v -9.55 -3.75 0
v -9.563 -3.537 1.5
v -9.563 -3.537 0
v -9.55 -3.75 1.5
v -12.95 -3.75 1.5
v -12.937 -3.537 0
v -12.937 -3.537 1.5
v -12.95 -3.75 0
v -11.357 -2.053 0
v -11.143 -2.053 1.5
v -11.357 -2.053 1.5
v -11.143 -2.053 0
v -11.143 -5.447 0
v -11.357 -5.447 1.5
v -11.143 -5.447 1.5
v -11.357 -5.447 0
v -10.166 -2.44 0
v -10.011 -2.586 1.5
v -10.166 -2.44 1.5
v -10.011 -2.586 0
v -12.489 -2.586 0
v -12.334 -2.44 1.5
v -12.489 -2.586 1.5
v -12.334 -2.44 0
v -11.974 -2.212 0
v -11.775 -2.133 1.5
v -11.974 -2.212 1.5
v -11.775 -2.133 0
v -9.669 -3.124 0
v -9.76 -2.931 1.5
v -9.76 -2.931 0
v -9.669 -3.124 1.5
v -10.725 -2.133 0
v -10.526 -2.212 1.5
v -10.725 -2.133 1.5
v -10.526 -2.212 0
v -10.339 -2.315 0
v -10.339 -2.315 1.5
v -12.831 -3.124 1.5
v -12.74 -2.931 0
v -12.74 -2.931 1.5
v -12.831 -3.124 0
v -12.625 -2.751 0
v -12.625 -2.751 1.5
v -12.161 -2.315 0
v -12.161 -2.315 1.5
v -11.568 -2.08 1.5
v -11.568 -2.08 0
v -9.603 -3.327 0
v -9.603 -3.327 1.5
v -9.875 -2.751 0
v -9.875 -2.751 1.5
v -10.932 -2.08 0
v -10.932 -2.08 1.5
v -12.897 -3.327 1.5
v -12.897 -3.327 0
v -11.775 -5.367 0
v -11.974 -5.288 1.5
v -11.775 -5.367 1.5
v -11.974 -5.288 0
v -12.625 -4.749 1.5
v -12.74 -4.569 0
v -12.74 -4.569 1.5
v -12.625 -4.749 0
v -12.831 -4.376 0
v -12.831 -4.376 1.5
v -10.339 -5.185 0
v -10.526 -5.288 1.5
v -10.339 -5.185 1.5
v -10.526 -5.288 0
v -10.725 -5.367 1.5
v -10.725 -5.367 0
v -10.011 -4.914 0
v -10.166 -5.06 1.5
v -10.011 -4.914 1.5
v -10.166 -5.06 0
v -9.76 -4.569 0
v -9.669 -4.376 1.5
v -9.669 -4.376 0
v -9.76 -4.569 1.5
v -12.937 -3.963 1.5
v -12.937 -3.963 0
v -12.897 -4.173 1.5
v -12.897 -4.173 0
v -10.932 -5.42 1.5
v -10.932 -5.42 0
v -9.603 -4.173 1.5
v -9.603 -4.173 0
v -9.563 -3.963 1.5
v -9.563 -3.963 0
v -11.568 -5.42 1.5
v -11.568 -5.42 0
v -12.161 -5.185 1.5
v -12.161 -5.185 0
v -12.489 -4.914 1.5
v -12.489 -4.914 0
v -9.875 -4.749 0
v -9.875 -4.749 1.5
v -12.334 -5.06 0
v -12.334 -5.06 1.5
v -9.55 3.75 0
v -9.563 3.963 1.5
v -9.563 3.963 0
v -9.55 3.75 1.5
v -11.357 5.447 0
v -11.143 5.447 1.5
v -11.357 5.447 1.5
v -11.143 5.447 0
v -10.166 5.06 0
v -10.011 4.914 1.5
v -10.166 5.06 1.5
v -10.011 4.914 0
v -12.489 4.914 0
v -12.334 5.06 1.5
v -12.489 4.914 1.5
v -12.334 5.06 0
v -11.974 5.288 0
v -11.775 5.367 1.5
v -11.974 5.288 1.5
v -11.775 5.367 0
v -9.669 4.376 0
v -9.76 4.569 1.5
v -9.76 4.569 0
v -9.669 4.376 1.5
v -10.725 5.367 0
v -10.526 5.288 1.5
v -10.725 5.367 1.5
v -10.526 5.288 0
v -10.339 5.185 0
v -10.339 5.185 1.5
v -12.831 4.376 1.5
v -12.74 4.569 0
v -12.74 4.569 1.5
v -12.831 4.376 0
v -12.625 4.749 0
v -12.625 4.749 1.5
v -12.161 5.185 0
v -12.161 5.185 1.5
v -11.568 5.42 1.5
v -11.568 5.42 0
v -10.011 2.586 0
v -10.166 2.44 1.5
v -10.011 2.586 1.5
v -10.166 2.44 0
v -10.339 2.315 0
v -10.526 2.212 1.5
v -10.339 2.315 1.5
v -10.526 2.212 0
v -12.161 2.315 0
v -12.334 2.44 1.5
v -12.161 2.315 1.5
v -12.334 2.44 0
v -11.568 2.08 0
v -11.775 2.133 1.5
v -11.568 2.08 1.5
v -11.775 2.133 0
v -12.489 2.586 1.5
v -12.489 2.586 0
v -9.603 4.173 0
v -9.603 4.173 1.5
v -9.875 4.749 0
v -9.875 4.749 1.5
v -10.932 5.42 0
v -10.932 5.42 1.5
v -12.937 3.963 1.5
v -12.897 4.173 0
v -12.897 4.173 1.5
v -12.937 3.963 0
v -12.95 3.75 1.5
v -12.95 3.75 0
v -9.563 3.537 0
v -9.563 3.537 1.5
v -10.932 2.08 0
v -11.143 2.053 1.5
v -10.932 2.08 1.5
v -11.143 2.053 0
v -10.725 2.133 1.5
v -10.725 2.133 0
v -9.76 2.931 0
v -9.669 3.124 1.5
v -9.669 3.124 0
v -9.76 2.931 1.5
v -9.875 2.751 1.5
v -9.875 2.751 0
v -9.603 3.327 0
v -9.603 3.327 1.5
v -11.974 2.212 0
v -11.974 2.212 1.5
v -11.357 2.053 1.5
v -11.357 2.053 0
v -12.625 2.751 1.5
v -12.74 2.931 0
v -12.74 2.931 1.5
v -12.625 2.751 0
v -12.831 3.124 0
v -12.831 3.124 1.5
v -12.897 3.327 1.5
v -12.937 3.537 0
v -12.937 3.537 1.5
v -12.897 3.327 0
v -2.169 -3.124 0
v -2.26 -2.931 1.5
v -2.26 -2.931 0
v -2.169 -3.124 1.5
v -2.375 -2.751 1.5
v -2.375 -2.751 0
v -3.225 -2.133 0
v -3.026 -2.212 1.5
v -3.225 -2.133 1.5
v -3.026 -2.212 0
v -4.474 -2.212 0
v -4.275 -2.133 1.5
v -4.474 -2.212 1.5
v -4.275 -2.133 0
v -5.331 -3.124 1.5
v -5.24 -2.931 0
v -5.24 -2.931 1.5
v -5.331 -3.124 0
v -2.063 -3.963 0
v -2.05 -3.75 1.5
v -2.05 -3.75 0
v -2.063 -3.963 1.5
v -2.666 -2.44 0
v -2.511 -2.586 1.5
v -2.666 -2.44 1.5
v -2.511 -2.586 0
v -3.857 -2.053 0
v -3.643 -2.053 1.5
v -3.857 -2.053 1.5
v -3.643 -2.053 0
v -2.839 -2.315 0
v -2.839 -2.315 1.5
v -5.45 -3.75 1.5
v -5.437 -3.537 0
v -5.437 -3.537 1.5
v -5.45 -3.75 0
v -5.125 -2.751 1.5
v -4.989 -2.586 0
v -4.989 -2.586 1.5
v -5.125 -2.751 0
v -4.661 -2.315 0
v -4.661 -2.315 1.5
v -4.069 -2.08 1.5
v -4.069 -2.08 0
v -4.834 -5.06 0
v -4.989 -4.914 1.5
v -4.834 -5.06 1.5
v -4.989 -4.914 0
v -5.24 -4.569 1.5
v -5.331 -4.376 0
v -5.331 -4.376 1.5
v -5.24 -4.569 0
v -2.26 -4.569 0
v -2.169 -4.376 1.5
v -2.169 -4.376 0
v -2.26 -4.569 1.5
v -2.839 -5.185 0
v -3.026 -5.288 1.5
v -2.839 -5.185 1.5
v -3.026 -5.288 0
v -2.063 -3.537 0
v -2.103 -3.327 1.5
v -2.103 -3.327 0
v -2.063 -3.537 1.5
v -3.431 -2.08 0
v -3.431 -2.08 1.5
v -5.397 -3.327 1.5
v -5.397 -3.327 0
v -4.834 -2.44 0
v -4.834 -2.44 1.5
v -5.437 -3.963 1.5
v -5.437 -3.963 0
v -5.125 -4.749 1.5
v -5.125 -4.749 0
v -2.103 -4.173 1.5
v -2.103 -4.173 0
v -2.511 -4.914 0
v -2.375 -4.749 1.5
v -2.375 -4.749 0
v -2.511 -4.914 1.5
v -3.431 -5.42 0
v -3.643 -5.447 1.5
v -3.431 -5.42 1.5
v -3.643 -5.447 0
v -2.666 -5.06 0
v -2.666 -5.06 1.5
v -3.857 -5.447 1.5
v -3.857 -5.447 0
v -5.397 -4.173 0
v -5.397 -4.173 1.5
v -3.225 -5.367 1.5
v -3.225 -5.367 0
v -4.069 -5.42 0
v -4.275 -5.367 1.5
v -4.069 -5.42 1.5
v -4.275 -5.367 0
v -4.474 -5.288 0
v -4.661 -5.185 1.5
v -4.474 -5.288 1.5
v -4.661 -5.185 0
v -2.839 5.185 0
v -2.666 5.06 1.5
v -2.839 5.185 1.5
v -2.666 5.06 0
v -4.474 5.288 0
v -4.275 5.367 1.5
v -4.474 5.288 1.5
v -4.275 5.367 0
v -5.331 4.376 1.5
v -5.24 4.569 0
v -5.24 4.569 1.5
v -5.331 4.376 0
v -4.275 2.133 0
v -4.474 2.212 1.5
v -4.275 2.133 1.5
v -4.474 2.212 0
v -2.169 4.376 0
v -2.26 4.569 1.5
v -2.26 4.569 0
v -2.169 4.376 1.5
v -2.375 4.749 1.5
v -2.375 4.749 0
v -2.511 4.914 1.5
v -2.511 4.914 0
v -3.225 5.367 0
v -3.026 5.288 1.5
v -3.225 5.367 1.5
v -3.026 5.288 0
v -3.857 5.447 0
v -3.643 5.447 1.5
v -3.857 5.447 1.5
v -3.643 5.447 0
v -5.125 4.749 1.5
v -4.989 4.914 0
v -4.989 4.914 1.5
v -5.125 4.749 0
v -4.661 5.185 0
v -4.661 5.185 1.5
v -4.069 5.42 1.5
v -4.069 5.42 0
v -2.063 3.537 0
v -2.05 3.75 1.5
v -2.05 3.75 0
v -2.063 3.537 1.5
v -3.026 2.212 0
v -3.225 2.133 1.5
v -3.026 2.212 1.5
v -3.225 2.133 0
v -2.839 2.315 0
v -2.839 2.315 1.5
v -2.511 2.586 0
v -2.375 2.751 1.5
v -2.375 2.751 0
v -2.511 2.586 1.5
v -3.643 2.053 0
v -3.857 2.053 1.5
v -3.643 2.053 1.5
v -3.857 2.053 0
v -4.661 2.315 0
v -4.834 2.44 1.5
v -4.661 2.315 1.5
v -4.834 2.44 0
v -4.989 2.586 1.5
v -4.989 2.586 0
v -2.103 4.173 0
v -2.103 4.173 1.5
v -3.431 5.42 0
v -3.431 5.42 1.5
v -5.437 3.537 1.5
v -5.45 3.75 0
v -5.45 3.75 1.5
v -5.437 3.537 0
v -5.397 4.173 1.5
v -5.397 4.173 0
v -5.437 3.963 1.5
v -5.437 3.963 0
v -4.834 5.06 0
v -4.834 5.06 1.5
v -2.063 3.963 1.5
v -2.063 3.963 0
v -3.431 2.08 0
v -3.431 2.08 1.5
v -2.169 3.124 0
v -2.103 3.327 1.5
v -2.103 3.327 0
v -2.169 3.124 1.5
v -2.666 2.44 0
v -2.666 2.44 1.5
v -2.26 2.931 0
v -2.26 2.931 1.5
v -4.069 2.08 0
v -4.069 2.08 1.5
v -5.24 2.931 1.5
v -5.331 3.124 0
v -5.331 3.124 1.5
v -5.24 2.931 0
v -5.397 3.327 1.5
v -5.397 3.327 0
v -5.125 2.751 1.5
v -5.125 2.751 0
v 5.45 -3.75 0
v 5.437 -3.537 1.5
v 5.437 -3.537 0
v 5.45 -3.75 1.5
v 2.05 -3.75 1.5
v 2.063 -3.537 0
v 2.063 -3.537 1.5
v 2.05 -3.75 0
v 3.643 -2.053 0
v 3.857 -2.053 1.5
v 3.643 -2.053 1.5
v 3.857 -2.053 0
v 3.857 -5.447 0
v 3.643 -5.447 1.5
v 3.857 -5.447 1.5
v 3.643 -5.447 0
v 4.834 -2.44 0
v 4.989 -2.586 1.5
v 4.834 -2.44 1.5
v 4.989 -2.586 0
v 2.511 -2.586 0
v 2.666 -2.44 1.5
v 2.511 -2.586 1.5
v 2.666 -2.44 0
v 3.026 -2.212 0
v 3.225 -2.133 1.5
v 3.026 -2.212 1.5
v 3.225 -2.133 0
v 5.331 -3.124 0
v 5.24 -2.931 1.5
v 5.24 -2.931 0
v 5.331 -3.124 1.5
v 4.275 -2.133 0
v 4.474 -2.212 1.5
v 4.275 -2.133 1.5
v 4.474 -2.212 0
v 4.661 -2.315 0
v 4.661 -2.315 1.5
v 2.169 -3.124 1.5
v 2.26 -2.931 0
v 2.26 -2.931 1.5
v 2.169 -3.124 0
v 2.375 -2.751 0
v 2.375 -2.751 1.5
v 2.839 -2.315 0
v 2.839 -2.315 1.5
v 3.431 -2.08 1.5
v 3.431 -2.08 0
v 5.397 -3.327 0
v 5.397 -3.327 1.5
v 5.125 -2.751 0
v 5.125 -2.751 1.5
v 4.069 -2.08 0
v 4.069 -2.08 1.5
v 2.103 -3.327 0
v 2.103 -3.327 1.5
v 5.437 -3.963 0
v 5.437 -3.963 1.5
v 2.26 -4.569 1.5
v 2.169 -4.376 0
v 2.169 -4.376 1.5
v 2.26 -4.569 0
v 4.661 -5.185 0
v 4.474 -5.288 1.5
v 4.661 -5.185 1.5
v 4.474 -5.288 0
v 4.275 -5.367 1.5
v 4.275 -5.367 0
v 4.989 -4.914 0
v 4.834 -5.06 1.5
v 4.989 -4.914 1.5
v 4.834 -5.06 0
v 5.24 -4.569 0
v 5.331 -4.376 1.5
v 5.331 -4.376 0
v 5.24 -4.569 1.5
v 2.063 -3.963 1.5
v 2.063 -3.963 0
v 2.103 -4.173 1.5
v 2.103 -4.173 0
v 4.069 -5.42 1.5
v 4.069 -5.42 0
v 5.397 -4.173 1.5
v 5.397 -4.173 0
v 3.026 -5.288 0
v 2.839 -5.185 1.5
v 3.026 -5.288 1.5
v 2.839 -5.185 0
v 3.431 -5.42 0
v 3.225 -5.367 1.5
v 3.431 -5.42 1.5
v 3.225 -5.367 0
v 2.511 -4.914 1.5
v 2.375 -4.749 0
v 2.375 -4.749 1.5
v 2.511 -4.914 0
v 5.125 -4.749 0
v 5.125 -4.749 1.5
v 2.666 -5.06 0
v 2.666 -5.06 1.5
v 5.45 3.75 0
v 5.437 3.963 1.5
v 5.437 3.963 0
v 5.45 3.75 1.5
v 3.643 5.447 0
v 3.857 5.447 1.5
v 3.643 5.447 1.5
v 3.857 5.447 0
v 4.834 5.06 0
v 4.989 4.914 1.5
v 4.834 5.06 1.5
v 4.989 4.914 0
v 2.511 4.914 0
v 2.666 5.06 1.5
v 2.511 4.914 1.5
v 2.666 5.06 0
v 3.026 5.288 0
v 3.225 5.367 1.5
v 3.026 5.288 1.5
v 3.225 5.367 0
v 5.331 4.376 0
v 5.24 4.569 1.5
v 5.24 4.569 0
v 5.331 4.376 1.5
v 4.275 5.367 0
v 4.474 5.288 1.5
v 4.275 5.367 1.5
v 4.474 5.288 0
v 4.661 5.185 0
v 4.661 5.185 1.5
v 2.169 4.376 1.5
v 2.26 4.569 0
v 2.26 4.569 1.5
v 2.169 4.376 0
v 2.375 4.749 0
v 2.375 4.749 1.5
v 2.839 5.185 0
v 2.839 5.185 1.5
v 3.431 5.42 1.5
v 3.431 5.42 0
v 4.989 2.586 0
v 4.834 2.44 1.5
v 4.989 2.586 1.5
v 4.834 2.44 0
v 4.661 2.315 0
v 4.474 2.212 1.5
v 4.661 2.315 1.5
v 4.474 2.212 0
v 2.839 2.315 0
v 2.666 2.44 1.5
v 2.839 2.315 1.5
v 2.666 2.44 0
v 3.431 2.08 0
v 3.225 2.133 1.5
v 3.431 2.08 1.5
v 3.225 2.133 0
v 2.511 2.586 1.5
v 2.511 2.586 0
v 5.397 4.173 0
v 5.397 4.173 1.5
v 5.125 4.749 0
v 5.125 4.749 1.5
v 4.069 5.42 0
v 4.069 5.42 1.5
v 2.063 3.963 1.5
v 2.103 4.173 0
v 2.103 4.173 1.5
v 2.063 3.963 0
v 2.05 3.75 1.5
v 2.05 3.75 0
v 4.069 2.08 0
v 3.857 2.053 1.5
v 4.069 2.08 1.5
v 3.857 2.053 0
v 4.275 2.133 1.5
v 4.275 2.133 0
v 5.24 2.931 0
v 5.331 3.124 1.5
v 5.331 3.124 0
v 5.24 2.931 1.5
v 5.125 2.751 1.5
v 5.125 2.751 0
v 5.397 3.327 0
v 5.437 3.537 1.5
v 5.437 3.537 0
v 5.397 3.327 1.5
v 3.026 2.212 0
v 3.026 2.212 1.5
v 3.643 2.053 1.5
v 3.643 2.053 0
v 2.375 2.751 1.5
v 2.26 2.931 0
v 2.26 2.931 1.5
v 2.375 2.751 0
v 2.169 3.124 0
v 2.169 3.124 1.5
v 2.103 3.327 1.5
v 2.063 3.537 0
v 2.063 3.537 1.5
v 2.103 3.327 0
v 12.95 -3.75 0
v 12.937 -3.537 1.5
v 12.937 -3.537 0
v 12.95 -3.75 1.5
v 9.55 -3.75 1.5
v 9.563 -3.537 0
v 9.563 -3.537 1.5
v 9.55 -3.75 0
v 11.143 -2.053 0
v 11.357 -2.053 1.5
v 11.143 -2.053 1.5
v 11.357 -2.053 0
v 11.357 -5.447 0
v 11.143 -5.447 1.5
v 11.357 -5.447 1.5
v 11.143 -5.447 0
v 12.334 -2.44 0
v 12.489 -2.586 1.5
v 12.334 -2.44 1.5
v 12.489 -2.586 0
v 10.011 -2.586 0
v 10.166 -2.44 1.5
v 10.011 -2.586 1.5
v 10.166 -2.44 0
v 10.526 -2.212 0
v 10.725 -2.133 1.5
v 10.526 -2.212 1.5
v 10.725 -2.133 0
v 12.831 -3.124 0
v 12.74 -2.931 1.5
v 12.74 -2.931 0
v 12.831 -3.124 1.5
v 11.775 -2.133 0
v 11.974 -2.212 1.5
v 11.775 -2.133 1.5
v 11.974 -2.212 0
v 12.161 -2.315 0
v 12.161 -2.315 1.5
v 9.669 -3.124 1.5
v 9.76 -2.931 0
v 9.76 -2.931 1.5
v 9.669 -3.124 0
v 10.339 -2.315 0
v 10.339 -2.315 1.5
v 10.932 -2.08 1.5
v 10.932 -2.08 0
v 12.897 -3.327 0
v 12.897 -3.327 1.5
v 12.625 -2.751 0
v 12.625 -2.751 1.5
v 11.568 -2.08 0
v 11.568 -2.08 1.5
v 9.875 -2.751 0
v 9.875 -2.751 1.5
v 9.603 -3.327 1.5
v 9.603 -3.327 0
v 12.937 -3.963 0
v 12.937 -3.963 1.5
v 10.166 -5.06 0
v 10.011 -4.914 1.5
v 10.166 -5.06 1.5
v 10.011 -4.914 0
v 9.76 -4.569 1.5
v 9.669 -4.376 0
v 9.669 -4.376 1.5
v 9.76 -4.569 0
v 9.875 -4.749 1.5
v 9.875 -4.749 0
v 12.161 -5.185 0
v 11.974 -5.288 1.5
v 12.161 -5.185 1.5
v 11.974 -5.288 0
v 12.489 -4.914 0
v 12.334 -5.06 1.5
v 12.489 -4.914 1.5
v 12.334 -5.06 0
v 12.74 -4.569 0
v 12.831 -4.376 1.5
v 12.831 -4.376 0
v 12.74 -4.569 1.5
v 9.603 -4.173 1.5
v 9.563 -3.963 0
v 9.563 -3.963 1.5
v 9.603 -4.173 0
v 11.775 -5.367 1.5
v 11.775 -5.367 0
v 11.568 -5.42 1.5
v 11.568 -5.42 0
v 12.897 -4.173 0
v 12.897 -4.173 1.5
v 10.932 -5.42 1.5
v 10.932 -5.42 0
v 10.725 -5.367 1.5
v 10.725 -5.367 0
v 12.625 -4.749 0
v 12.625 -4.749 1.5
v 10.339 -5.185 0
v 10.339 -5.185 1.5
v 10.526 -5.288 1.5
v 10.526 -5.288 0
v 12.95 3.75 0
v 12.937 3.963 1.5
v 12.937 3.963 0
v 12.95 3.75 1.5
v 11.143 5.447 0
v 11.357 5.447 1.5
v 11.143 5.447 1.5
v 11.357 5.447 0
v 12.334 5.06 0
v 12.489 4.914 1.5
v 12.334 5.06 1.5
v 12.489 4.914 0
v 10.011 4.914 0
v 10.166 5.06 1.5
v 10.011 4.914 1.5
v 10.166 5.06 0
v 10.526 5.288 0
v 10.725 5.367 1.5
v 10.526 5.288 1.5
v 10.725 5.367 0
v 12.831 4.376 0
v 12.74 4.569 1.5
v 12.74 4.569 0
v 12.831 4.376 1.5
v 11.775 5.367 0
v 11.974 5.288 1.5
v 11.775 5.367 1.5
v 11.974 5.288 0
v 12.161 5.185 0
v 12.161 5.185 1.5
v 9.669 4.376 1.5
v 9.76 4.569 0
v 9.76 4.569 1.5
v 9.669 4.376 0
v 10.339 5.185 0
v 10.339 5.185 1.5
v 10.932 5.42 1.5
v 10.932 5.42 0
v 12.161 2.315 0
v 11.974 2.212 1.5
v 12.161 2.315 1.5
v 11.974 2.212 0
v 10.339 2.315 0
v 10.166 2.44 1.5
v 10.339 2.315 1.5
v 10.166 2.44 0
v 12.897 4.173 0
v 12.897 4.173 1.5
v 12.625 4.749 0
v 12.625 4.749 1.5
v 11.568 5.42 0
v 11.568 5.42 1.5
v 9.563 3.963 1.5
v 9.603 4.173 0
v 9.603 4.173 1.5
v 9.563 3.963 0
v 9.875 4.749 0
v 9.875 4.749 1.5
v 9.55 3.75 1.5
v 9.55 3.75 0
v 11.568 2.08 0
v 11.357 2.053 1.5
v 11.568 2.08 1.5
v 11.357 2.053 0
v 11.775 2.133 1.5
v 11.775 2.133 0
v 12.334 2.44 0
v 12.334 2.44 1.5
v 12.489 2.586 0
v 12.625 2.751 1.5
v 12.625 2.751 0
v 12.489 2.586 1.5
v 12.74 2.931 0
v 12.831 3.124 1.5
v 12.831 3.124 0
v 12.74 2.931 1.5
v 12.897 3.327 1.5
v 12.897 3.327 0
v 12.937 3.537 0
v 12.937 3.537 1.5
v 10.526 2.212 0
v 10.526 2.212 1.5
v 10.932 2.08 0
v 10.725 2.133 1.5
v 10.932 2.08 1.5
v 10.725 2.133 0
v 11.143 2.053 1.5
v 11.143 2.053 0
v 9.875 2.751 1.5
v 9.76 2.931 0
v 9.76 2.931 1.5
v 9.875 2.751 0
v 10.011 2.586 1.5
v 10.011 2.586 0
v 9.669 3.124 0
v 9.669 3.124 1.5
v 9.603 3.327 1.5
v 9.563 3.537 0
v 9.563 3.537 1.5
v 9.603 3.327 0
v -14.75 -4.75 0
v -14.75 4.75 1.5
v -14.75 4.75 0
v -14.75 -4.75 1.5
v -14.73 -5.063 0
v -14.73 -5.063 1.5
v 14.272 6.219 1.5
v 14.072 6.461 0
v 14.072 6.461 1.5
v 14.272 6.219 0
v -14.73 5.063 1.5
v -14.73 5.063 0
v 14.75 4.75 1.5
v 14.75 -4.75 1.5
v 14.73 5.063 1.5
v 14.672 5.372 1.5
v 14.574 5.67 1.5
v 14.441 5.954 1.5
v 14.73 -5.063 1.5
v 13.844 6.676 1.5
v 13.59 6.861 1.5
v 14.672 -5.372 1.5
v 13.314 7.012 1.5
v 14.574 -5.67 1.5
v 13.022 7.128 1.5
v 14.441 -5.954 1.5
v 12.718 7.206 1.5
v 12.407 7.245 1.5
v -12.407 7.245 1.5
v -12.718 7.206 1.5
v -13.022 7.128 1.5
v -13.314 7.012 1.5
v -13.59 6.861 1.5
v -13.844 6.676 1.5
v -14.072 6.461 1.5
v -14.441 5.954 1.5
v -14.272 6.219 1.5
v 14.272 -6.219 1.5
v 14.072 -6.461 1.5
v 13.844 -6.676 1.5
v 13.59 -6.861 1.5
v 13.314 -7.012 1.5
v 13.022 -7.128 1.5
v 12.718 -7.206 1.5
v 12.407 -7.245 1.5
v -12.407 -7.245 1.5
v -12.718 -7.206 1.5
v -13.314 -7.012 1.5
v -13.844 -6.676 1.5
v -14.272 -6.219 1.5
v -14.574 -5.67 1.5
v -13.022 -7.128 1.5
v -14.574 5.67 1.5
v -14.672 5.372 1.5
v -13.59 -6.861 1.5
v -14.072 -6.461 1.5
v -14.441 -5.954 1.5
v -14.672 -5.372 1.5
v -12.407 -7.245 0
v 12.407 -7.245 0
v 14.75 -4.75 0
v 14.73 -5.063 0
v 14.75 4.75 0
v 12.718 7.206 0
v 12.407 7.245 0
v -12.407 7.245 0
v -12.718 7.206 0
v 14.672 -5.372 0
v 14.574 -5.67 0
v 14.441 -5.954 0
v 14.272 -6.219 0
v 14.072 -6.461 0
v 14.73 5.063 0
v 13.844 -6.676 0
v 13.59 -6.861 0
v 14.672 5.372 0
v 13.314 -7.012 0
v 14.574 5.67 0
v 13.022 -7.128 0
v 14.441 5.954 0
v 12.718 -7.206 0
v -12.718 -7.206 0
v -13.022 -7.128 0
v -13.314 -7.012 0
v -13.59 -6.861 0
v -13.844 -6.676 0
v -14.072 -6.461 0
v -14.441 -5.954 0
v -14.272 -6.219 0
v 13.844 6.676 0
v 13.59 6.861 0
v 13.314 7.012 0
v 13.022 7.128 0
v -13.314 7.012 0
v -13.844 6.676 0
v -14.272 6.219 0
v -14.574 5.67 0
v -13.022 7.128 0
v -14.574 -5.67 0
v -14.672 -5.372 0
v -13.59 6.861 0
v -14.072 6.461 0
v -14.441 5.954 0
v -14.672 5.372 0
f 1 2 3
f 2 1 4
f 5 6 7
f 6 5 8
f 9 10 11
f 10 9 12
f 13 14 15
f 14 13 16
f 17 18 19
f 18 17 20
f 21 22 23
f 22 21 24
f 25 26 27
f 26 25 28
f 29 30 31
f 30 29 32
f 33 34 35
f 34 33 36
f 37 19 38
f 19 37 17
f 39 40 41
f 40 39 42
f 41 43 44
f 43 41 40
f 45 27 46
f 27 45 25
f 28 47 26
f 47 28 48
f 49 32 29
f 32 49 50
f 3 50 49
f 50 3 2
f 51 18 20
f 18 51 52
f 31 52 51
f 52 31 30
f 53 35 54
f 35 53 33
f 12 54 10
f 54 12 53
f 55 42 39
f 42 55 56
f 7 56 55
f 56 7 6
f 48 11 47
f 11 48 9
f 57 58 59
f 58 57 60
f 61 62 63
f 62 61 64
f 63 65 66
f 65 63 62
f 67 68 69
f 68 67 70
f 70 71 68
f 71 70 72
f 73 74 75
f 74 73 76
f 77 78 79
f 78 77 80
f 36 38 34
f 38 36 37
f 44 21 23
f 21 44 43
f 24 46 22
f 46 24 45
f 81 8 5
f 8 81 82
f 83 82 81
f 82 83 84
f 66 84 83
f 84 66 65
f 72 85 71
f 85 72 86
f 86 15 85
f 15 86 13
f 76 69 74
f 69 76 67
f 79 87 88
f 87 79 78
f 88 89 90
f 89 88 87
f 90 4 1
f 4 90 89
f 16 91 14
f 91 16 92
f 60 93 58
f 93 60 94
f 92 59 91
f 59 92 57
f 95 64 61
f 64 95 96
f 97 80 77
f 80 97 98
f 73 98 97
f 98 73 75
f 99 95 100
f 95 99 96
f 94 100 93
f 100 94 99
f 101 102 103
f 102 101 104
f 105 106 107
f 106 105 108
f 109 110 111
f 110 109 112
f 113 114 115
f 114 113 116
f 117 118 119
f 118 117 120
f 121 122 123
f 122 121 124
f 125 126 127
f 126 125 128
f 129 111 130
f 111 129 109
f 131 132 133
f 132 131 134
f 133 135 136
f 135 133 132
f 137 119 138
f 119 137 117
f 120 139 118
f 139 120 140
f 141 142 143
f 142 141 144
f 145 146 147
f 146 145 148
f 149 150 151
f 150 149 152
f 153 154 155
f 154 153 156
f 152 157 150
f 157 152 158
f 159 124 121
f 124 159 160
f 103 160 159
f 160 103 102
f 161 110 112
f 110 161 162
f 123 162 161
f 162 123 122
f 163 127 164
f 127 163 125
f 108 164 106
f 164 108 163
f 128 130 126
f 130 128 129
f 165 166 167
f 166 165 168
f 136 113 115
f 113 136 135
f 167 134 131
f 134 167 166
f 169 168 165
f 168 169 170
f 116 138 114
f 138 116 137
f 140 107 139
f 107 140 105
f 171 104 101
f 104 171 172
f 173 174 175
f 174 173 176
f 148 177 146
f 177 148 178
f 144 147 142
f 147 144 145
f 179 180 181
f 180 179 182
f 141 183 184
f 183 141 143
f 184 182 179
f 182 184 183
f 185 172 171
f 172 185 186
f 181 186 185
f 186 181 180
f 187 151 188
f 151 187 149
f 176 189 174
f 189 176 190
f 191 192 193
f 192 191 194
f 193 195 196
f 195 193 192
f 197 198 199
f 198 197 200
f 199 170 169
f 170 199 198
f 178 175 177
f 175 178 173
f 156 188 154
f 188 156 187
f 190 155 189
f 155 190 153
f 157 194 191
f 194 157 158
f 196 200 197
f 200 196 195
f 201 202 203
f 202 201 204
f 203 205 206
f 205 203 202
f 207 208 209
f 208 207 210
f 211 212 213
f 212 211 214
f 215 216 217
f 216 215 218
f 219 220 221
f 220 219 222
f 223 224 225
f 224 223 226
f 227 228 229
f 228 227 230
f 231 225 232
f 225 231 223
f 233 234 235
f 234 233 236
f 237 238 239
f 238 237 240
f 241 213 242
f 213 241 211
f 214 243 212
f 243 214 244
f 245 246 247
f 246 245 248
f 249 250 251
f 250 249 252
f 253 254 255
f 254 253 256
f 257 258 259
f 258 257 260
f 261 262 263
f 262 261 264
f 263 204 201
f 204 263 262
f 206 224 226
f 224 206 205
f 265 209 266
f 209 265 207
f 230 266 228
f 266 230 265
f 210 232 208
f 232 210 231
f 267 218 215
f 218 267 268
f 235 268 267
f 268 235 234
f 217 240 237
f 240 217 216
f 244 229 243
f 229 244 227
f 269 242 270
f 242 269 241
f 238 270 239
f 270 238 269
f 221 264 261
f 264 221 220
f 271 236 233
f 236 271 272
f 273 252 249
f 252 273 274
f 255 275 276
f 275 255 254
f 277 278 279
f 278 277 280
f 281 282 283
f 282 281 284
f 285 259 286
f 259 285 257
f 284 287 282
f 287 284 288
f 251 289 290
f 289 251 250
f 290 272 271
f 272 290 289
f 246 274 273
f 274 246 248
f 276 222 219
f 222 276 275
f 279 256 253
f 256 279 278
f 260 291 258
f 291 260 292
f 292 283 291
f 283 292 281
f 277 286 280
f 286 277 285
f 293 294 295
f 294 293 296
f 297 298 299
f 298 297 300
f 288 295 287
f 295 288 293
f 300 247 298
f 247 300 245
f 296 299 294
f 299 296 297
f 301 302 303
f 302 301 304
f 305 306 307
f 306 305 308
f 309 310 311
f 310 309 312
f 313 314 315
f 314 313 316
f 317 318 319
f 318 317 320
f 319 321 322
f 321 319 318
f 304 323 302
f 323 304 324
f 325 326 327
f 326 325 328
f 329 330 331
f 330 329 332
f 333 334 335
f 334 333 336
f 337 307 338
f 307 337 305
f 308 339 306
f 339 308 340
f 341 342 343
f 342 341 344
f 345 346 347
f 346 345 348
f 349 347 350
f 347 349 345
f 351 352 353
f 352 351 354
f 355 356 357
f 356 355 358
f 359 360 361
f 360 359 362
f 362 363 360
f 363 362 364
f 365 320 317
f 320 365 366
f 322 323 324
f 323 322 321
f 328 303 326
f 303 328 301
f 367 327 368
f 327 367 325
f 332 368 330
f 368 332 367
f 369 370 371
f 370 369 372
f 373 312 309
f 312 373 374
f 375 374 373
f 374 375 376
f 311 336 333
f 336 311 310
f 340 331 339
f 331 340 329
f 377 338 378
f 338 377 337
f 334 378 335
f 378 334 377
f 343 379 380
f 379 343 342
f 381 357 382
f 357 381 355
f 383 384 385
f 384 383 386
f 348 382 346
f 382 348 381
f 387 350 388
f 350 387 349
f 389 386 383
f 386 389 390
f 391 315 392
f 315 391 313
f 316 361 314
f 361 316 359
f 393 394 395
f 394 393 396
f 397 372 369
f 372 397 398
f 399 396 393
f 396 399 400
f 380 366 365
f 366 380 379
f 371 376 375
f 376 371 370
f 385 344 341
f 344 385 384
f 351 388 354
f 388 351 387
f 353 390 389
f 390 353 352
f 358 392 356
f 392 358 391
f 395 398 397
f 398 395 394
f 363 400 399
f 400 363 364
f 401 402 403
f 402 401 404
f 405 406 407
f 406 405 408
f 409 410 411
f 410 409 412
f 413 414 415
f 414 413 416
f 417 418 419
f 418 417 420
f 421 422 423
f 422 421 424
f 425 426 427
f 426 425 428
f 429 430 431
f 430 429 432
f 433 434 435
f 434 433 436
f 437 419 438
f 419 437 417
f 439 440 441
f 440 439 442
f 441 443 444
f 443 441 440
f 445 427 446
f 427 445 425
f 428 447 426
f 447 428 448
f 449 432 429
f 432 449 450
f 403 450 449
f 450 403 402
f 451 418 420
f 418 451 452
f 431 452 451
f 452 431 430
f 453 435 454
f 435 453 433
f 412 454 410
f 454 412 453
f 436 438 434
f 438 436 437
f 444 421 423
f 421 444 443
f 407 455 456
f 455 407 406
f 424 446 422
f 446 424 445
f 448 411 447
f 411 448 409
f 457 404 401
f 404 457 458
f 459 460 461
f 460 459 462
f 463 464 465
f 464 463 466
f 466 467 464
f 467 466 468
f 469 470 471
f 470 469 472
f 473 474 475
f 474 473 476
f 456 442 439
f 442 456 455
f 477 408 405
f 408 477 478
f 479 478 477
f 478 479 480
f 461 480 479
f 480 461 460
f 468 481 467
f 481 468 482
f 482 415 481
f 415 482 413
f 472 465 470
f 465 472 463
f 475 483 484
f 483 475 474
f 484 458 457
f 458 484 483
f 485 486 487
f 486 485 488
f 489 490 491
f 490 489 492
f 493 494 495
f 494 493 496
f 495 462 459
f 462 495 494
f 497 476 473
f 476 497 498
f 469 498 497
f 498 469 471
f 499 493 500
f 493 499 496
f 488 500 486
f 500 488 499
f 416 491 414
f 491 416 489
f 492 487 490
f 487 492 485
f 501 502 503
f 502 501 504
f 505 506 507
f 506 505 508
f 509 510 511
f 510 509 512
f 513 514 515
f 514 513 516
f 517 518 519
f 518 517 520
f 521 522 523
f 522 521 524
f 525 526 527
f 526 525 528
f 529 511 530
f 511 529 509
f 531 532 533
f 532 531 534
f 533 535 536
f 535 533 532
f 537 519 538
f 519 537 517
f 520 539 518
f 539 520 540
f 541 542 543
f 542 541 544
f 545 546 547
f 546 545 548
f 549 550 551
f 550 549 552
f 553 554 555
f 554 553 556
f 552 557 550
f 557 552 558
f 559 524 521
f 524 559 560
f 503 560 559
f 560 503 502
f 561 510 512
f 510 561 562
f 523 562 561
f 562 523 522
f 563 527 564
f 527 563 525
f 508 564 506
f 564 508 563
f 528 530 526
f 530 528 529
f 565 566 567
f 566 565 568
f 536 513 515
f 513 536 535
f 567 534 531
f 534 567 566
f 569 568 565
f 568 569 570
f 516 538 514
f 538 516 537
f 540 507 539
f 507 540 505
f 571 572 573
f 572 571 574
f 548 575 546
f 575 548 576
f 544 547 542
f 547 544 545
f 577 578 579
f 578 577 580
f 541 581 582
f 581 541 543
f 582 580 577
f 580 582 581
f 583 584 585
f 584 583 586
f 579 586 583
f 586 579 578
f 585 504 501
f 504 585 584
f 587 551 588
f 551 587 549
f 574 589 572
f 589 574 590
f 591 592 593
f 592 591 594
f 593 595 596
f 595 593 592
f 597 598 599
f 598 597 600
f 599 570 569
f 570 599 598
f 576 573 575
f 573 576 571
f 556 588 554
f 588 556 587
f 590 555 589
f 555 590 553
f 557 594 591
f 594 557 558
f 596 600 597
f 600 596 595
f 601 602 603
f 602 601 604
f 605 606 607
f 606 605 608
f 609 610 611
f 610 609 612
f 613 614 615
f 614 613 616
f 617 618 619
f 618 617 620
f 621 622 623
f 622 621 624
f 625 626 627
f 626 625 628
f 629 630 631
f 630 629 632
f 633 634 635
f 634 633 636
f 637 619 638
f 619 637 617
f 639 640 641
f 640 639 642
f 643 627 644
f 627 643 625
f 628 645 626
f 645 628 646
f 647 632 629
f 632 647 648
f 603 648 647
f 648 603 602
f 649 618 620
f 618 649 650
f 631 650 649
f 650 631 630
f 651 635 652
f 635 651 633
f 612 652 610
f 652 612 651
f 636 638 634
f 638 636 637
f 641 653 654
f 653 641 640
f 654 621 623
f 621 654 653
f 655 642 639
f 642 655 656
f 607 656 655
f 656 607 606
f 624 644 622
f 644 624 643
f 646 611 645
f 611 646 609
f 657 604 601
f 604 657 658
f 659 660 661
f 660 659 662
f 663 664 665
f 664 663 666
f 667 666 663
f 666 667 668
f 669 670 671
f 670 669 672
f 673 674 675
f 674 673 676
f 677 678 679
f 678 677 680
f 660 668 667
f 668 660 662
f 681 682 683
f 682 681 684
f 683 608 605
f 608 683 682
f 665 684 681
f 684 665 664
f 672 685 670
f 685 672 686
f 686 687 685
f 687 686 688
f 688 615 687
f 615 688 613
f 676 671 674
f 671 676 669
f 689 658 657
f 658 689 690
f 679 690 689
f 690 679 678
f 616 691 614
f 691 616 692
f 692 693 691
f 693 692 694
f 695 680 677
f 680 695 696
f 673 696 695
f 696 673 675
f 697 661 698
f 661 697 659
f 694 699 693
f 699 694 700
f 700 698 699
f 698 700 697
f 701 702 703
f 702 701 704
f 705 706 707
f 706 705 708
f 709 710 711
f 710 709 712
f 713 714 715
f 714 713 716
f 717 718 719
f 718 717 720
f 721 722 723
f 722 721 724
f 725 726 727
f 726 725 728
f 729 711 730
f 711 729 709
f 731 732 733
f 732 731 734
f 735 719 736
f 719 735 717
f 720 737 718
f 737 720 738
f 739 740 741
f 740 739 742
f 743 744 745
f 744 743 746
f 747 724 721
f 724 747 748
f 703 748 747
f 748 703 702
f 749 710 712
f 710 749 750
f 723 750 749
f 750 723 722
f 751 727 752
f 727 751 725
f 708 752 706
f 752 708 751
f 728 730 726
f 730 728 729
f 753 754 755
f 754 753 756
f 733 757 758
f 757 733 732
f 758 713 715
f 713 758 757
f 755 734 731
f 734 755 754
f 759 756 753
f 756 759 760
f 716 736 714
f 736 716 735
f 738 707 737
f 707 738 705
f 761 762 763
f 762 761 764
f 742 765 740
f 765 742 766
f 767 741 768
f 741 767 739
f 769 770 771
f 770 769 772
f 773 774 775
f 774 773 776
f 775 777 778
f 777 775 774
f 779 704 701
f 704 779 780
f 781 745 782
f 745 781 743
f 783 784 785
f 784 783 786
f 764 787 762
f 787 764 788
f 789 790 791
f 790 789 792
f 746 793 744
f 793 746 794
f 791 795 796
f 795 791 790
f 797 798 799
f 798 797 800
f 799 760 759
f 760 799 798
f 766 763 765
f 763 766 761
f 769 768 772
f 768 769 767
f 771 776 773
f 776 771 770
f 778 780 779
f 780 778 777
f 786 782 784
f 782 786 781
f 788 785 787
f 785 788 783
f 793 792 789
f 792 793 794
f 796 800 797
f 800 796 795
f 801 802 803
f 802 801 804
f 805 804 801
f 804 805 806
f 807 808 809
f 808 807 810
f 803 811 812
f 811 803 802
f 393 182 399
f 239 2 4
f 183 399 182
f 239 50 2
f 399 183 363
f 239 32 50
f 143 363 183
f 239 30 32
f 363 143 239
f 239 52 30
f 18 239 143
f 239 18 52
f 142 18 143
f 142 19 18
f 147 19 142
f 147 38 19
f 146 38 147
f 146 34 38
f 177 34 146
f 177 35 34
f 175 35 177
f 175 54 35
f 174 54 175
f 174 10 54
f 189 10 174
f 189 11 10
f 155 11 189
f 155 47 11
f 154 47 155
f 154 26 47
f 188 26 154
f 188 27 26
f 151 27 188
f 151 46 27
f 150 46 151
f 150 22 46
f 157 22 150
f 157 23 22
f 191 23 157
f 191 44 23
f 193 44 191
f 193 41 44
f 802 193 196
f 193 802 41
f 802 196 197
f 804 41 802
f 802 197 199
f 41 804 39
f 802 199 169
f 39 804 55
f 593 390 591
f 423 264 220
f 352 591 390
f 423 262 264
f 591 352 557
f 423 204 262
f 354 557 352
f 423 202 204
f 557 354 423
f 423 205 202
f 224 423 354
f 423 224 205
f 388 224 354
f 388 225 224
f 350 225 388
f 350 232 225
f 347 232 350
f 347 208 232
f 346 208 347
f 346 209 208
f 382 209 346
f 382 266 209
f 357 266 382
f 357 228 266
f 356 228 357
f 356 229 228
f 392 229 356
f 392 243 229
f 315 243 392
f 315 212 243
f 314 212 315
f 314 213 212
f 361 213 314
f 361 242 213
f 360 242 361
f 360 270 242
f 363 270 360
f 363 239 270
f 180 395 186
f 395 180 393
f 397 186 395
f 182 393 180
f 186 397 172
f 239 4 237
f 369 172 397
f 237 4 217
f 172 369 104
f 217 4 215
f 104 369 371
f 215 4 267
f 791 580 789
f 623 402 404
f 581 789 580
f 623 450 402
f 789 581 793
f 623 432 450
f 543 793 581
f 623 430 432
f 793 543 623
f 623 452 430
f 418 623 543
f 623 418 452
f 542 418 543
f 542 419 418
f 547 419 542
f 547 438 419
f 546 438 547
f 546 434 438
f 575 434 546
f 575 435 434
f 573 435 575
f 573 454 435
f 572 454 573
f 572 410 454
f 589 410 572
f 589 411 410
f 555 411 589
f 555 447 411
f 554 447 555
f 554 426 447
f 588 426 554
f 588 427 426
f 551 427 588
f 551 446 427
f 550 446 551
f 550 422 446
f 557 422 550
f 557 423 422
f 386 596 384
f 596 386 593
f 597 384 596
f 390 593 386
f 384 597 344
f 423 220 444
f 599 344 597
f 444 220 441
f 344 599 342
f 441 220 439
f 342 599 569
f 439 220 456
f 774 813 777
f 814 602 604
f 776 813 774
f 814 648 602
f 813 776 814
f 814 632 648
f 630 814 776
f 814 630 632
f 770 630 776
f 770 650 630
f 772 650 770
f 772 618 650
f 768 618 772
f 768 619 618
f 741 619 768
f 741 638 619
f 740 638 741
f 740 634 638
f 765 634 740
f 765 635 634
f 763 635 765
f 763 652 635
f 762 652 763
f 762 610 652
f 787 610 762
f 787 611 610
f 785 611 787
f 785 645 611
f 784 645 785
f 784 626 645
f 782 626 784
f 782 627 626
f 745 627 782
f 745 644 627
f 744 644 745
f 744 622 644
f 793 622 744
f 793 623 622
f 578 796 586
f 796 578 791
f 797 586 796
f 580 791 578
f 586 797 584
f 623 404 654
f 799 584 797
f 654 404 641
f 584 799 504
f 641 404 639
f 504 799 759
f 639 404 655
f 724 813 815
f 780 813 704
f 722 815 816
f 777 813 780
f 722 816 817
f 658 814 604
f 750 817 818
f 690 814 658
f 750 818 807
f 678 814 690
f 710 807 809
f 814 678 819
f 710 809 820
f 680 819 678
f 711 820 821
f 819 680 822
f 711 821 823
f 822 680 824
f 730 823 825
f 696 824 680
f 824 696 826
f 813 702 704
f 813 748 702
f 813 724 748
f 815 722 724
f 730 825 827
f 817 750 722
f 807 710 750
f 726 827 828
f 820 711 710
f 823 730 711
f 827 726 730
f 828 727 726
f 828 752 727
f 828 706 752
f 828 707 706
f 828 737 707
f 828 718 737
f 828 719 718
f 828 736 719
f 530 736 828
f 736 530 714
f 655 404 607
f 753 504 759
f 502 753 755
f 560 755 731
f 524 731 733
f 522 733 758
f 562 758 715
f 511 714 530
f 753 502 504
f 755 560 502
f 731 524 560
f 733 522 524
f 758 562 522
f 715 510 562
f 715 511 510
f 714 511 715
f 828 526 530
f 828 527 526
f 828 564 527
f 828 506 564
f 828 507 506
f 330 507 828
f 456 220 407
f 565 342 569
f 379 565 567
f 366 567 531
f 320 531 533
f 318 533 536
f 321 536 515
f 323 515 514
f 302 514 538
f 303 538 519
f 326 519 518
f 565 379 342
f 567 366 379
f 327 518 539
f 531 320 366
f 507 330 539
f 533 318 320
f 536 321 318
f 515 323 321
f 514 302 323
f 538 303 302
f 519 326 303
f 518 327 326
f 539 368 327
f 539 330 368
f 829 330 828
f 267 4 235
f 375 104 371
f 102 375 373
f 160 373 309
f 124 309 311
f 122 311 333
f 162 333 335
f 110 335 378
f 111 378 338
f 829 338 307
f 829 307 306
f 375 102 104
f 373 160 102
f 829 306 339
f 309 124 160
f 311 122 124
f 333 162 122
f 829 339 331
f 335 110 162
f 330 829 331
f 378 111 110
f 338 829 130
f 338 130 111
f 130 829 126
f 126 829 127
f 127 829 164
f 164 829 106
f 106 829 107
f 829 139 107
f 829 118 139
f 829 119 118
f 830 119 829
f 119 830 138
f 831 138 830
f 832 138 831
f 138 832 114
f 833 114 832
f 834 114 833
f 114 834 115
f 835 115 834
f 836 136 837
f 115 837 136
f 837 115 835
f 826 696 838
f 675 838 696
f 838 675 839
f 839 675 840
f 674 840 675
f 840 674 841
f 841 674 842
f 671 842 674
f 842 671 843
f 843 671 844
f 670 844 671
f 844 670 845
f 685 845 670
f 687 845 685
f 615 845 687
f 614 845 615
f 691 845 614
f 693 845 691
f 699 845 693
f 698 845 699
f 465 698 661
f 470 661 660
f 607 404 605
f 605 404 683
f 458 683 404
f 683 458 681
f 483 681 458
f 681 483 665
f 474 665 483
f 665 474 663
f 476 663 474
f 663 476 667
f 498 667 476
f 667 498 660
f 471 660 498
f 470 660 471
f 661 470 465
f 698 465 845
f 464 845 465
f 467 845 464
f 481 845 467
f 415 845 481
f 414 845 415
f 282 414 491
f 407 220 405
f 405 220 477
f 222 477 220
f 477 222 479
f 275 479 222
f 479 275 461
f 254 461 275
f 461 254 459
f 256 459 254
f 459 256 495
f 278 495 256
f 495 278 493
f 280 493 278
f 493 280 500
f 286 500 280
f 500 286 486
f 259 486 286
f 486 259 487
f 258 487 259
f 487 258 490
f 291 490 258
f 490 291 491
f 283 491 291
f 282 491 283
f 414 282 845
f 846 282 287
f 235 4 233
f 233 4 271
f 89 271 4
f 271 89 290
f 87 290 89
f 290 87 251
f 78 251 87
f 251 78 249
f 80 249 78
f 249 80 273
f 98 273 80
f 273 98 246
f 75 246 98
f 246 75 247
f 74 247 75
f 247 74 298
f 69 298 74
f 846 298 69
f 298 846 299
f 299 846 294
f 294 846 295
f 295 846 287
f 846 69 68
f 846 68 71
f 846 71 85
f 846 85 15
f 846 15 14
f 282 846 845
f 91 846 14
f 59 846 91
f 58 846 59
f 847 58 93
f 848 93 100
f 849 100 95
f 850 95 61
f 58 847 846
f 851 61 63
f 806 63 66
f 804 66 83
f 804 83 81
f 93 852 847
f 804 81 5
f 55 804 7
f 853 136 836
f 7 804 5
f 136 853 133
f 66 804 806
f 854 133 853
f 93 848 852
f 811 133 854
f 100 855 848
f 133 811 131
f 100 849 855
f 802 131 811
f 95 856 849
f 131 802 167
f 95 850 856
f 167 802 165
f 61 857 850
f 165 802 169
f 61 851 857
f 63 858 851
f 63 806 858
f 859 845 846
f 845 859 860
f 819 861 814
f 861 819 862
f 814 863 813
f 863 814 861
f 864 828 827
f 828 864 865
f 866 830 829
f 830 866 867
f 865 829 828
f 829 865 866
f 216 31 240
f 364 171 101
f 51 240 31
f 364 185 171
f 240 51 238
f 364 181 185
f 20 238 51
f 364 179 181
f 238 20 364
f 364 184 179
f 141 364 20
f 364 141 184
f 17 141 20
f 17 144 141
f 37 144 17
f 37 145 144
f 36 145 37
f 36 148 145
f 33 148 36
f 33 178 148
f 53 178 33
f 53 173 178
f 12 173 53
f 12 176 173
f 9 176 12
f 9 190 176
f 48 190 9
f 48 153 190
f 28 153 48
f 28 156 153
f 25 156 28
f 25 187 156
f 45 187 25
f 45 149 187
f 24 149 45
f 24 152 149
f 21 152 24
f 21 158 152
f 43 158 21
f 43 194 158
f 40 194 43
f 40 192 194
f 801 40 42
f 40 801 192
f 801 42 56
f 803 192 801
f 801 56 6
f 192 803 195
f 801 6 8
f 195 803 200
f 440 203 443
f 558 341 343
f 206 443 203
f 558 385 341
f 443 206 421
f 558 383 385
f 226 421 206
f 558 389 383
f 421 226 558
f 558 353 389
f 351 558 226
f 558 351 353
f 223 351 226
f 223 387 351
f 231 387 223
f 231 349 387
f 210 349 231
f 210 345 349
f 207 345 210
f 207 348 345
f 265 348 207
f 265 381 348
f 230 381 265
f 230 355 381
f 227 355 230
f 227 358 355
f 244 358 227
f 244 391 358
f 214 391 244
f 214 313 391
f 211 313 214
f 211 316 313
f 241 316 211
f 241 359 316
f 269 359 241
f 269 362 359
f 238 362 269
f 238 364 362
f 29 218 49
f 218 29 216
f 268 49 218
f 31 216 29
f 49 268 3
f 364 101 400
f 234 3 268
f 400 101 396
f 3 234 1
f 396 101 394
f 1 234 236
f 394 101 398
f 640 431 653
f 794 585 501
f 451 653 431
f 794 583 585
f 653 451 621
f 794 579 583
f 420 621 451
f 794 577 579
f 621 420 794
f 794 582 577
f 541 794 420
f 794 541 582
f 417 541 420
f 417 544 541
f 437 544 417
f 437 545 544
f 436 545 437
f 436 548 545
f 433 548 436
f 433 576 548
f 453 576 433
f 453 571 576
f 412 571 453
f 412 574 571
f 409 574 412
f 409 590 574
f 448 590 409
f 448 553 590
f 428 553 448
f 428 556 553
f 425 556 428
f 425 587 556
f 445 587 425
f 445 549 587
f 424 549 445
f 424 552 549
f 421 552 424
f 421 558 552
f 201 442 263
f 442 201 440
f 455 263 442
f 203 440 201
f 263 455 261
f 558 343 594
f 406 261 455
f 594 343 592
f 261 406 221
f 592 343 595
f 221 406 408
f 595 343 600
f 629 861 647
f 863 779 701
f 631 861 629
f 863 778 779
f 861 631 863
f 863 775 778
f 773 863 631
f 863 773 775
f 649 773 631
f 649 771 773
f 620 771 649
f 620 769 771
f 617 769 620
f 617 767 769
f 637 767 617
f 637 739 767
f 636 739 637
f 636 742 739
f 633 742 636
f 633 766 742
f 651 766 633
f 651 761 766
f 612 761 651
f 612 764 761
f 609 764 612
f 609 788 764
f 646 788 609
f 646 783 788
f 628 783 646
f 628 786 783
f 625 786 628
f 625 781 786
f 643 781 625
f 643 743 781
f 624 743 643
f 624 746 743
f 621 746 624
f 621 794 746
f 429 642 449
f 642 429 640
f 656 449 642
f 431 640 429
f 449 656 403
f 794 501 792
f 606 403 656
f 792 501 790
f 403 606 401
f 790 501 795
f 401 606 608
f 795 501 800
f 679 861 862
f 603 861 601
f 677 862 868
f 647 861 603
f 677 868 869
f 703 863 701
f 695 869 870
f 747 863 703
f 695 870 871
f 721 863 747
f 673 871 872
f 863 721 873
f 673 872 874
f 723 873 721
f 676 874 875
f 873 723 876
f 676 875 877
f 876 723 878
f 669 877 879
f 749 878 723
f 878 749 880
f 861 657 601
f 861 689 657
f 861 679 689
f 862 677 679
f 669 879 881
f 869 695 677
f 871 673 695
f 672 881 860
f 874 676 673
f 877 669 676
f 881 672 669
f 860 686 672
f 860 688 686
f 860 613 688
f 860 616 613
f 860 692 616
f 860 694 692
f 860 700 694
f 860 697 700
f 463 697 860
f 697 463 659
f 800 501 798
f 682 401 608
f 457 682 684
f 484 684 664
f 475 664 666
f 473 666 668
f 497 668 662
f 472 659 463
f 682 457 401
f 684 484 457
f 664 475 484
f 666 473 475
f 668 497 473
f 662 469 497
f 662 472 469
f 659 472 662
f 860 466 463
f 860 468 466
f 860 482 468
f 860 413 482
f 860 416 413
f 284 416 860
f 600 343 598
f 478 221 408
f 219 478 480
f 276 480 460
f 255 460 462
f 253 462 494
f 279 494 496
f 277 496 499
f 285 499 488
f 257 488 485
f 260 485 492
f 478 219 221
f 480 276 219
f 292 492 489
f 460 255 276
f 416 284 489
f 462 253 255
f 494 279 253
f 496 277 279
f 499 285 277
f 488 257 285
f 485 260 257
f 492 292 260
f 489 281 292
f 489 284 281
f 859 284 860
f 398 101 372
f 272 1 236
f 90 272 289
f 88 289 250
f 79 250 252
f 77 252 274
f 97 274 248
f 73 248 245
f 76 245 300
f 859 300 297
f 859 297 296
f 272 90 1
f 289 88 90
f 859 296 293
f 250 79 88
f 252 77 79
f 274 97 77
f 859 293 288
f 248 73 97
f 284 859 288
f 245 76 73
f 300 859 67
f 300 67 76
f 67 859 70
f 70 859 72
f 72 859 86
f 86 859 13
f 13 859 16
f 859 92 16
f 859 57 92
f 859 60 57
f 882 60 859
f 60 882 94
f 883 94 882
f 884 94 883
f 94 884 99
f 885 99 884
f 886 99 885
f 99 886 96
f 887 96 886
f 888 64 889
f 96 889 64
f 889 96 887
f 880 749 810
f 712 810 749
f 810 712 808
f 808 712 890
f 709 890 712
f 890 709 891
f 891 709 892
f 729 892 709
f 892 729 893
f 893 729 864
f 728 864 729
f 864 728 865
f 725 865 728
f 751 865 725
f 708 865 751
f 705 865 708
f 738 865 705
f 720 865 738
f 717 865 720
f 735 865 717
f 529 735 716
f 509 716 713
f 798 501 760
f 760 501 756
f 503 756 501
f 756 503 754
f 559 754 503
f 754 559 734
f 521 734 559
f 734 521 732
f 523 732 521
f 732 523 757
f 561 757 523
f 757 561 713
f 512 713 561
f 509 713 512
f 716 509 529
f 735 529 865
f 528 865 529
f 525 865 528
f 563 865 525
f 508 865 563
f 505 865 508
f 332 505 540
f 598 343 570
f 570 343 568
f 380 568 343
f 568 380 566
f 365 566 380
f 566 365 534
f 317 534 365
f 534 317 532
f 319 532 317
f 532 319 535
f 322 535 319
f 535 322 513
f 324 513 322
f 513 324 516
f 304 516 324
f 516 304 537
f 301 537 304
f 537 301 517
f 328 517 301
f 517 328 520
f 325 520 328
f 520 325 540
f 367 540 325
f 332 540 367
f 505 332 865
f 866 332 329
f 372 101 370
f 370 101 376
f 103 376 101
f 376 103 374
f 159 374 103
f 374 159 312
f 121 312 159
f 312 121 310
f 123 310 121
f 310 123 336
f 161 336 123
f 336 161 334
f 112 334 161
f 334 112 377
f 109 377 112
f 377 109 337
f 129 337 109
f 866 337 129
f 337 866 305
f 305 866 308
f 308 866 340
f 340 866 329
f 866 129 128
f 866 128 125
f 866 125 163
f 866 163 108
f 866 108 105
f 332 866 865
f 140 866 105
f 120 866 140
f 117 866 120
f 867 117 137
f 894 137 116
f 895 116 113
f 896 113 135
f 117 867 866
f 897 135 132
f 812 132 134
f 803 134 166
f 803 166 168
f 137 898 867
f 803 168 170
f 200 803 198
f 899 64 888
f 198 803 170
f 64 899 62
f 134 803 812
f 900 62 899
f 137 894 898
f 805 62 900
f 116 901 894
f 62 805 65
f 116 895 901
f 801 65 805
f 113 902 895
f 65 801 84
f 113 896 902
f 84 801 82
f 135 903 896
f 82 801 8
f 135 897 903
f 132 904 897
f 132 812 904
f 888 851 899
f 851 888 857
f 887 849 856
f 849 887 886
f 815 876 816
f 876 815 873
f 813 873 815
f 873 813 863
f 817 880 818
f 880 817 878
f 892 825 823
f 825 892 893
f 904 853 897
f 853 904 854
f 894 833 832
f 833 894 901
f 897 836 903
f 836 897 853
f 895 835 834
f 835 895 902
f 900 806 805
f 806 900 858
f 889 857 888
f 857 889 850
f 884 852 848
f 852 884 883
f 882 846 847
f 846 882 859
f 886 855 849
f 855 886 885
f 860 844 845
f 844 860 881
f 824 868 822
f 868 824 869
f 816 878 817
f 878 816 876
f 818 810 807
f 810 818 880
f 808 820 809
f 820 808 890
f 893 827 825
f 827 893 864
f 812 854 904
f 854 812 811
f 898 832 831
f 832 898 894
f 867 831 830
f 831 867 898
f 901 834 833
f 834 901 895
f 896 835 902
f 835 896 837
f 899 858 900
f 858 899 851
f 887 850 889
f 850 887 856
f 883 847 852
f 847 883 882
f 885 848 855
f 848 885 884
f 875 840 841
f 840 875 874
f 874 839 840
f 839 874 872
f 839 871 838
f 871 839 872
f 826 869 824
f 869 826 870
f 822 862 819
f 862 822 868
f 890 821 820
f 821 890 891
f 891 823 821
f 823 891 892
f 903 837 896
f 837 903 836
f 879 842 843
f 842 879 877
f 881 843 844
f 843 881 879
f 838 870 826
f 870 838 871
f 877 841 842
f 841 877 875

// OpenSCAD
$fn = 50;


difference() {
	union() {
		translate(v = [0, 0, 0]) {
			rotate(a = [0, 0, 0]) {
				hull() {
					translate(v = [-12.2500000000, 4.7500000000, 0]) {
						rotate(a = [0, 0, 0]) {
							translate(v = [0, 0, 0]) {
								rotate(a = [0, 0, 0]) {
									cylinder(h = 1.5000000000, r = 2.5000000000);
								}
							}
						}
					}
					translate(v = [12.2500000000, 4.7500000000, 0]) {
						rotate(a = [0, 0, 0]) {
							translate(v = [0, 0, 0]) {
								rotate(a = [0, 0, 0]) {
									cylinder(h = 1.5000000000, r = 2.5000000000);
								}
							}
						}
					}
					translate(v = [-12.2500000000, -4.7500000000, 0]) {
						rotate(a = [0, 0, 0]) {
							translate(v = [0, 0, 0]) {
								rotate(a = [0, 0, 0]) {
									cylinder(h = 1.5000000000, r = 2.5000000000);
								}
							}
						}
					}
					translate(v = [12.2500000000, -4.7500000000, 0]) {
						rotate(a = [0, 0, 0]) {
							translate(v = [0, 0, 0]) {
								rotate(a = [0, 0, 0]) {
									cylinder(h = 1.5000000000, r = 2.5000000000);
								}
							}
						}
					}
				}
			}
		}
	}
	union() {
		translate(v = [-11.2500000000, -3.7500000000, 0]) {
			rotate(a = [0, 0, 0]) {
				translate(v = [0, 0, -50]) {
					rotate(a = [0, 0, 0]) {
						cylinder(h = 100, r = 1.7000000000);
					}
				}
			}
		}
		translate(v = [-11.2500000000, 3.7500000000, 0]) {
			rotate(a = [0, 0, 0]) {
				translate(v = [0, 0, -50]) {
					rotate(a = [0, 0, 0]) {
						cylinder(h = 100, r = 1.7000000000);
					}
				}
			}
		}
		translate(v = [-3.7500000000, -3.7500000000, 0]) {
			rotate(a = [0, 0, 0]) {
				translate(v = [0, 0, -50]) {
					rotate(a = [0, 0, 0]) {
						cylinder(h = 100, r = 1.7000000000);
					}
				}
			}
		}
		translate(v = [-3.7500000000, 3.7500000000, 0]) {
			rotate(a = [0, 0, 0]) {
				translate(v = [0, 0, -50]) {
					rotate(a = [0, 0, 0]) {
						cylinder(h = 100, r = 1.7000000000);
					}
				}
			}
		}
		translate(v = [3.7500000000, -3.7500000000, 0]) {
			rotate(a = [0, 0, 0]) {
				translate(v = [0, 0, -50]) {
					rotate(a = [0, 0, 0]) {
						cylinder(h = 100, r = 1.7000000000);
					}
				}
			}
		}
		translate(v = [3.7500000000, 3.7500000000, 0]) {
			rotate(a = [0, 0, 0]) {
				translate(v = [0, 0, -50]) {
					rotate(a = [0, 0, 0]) {
						cylinder(h = 100, r = 1.7000000000);
					}
				}
			}
		}
		translate(v = [11.2500000000, -3.7500000000, 0]) {
			rotate(a = [0, 0, 0]) {
				translate(v = [0, 0, -50]) {
					rotate(a = [0, 0, 0]) {
						cylinder(h = 100, r = 1.7000000000);
					}
				}
			}
		}
		translate(v = [11.2500000000, 3.7500000000, 0]) {
			rotate(a = [0, 0, 0]) {
				translate(v = [0, 0, -50]) {
					rotate(a = [0, 0, 0]) {
						cylinder(h = 100, r = 1.7000000000);
					}
				}
			}
		}
	}
}
